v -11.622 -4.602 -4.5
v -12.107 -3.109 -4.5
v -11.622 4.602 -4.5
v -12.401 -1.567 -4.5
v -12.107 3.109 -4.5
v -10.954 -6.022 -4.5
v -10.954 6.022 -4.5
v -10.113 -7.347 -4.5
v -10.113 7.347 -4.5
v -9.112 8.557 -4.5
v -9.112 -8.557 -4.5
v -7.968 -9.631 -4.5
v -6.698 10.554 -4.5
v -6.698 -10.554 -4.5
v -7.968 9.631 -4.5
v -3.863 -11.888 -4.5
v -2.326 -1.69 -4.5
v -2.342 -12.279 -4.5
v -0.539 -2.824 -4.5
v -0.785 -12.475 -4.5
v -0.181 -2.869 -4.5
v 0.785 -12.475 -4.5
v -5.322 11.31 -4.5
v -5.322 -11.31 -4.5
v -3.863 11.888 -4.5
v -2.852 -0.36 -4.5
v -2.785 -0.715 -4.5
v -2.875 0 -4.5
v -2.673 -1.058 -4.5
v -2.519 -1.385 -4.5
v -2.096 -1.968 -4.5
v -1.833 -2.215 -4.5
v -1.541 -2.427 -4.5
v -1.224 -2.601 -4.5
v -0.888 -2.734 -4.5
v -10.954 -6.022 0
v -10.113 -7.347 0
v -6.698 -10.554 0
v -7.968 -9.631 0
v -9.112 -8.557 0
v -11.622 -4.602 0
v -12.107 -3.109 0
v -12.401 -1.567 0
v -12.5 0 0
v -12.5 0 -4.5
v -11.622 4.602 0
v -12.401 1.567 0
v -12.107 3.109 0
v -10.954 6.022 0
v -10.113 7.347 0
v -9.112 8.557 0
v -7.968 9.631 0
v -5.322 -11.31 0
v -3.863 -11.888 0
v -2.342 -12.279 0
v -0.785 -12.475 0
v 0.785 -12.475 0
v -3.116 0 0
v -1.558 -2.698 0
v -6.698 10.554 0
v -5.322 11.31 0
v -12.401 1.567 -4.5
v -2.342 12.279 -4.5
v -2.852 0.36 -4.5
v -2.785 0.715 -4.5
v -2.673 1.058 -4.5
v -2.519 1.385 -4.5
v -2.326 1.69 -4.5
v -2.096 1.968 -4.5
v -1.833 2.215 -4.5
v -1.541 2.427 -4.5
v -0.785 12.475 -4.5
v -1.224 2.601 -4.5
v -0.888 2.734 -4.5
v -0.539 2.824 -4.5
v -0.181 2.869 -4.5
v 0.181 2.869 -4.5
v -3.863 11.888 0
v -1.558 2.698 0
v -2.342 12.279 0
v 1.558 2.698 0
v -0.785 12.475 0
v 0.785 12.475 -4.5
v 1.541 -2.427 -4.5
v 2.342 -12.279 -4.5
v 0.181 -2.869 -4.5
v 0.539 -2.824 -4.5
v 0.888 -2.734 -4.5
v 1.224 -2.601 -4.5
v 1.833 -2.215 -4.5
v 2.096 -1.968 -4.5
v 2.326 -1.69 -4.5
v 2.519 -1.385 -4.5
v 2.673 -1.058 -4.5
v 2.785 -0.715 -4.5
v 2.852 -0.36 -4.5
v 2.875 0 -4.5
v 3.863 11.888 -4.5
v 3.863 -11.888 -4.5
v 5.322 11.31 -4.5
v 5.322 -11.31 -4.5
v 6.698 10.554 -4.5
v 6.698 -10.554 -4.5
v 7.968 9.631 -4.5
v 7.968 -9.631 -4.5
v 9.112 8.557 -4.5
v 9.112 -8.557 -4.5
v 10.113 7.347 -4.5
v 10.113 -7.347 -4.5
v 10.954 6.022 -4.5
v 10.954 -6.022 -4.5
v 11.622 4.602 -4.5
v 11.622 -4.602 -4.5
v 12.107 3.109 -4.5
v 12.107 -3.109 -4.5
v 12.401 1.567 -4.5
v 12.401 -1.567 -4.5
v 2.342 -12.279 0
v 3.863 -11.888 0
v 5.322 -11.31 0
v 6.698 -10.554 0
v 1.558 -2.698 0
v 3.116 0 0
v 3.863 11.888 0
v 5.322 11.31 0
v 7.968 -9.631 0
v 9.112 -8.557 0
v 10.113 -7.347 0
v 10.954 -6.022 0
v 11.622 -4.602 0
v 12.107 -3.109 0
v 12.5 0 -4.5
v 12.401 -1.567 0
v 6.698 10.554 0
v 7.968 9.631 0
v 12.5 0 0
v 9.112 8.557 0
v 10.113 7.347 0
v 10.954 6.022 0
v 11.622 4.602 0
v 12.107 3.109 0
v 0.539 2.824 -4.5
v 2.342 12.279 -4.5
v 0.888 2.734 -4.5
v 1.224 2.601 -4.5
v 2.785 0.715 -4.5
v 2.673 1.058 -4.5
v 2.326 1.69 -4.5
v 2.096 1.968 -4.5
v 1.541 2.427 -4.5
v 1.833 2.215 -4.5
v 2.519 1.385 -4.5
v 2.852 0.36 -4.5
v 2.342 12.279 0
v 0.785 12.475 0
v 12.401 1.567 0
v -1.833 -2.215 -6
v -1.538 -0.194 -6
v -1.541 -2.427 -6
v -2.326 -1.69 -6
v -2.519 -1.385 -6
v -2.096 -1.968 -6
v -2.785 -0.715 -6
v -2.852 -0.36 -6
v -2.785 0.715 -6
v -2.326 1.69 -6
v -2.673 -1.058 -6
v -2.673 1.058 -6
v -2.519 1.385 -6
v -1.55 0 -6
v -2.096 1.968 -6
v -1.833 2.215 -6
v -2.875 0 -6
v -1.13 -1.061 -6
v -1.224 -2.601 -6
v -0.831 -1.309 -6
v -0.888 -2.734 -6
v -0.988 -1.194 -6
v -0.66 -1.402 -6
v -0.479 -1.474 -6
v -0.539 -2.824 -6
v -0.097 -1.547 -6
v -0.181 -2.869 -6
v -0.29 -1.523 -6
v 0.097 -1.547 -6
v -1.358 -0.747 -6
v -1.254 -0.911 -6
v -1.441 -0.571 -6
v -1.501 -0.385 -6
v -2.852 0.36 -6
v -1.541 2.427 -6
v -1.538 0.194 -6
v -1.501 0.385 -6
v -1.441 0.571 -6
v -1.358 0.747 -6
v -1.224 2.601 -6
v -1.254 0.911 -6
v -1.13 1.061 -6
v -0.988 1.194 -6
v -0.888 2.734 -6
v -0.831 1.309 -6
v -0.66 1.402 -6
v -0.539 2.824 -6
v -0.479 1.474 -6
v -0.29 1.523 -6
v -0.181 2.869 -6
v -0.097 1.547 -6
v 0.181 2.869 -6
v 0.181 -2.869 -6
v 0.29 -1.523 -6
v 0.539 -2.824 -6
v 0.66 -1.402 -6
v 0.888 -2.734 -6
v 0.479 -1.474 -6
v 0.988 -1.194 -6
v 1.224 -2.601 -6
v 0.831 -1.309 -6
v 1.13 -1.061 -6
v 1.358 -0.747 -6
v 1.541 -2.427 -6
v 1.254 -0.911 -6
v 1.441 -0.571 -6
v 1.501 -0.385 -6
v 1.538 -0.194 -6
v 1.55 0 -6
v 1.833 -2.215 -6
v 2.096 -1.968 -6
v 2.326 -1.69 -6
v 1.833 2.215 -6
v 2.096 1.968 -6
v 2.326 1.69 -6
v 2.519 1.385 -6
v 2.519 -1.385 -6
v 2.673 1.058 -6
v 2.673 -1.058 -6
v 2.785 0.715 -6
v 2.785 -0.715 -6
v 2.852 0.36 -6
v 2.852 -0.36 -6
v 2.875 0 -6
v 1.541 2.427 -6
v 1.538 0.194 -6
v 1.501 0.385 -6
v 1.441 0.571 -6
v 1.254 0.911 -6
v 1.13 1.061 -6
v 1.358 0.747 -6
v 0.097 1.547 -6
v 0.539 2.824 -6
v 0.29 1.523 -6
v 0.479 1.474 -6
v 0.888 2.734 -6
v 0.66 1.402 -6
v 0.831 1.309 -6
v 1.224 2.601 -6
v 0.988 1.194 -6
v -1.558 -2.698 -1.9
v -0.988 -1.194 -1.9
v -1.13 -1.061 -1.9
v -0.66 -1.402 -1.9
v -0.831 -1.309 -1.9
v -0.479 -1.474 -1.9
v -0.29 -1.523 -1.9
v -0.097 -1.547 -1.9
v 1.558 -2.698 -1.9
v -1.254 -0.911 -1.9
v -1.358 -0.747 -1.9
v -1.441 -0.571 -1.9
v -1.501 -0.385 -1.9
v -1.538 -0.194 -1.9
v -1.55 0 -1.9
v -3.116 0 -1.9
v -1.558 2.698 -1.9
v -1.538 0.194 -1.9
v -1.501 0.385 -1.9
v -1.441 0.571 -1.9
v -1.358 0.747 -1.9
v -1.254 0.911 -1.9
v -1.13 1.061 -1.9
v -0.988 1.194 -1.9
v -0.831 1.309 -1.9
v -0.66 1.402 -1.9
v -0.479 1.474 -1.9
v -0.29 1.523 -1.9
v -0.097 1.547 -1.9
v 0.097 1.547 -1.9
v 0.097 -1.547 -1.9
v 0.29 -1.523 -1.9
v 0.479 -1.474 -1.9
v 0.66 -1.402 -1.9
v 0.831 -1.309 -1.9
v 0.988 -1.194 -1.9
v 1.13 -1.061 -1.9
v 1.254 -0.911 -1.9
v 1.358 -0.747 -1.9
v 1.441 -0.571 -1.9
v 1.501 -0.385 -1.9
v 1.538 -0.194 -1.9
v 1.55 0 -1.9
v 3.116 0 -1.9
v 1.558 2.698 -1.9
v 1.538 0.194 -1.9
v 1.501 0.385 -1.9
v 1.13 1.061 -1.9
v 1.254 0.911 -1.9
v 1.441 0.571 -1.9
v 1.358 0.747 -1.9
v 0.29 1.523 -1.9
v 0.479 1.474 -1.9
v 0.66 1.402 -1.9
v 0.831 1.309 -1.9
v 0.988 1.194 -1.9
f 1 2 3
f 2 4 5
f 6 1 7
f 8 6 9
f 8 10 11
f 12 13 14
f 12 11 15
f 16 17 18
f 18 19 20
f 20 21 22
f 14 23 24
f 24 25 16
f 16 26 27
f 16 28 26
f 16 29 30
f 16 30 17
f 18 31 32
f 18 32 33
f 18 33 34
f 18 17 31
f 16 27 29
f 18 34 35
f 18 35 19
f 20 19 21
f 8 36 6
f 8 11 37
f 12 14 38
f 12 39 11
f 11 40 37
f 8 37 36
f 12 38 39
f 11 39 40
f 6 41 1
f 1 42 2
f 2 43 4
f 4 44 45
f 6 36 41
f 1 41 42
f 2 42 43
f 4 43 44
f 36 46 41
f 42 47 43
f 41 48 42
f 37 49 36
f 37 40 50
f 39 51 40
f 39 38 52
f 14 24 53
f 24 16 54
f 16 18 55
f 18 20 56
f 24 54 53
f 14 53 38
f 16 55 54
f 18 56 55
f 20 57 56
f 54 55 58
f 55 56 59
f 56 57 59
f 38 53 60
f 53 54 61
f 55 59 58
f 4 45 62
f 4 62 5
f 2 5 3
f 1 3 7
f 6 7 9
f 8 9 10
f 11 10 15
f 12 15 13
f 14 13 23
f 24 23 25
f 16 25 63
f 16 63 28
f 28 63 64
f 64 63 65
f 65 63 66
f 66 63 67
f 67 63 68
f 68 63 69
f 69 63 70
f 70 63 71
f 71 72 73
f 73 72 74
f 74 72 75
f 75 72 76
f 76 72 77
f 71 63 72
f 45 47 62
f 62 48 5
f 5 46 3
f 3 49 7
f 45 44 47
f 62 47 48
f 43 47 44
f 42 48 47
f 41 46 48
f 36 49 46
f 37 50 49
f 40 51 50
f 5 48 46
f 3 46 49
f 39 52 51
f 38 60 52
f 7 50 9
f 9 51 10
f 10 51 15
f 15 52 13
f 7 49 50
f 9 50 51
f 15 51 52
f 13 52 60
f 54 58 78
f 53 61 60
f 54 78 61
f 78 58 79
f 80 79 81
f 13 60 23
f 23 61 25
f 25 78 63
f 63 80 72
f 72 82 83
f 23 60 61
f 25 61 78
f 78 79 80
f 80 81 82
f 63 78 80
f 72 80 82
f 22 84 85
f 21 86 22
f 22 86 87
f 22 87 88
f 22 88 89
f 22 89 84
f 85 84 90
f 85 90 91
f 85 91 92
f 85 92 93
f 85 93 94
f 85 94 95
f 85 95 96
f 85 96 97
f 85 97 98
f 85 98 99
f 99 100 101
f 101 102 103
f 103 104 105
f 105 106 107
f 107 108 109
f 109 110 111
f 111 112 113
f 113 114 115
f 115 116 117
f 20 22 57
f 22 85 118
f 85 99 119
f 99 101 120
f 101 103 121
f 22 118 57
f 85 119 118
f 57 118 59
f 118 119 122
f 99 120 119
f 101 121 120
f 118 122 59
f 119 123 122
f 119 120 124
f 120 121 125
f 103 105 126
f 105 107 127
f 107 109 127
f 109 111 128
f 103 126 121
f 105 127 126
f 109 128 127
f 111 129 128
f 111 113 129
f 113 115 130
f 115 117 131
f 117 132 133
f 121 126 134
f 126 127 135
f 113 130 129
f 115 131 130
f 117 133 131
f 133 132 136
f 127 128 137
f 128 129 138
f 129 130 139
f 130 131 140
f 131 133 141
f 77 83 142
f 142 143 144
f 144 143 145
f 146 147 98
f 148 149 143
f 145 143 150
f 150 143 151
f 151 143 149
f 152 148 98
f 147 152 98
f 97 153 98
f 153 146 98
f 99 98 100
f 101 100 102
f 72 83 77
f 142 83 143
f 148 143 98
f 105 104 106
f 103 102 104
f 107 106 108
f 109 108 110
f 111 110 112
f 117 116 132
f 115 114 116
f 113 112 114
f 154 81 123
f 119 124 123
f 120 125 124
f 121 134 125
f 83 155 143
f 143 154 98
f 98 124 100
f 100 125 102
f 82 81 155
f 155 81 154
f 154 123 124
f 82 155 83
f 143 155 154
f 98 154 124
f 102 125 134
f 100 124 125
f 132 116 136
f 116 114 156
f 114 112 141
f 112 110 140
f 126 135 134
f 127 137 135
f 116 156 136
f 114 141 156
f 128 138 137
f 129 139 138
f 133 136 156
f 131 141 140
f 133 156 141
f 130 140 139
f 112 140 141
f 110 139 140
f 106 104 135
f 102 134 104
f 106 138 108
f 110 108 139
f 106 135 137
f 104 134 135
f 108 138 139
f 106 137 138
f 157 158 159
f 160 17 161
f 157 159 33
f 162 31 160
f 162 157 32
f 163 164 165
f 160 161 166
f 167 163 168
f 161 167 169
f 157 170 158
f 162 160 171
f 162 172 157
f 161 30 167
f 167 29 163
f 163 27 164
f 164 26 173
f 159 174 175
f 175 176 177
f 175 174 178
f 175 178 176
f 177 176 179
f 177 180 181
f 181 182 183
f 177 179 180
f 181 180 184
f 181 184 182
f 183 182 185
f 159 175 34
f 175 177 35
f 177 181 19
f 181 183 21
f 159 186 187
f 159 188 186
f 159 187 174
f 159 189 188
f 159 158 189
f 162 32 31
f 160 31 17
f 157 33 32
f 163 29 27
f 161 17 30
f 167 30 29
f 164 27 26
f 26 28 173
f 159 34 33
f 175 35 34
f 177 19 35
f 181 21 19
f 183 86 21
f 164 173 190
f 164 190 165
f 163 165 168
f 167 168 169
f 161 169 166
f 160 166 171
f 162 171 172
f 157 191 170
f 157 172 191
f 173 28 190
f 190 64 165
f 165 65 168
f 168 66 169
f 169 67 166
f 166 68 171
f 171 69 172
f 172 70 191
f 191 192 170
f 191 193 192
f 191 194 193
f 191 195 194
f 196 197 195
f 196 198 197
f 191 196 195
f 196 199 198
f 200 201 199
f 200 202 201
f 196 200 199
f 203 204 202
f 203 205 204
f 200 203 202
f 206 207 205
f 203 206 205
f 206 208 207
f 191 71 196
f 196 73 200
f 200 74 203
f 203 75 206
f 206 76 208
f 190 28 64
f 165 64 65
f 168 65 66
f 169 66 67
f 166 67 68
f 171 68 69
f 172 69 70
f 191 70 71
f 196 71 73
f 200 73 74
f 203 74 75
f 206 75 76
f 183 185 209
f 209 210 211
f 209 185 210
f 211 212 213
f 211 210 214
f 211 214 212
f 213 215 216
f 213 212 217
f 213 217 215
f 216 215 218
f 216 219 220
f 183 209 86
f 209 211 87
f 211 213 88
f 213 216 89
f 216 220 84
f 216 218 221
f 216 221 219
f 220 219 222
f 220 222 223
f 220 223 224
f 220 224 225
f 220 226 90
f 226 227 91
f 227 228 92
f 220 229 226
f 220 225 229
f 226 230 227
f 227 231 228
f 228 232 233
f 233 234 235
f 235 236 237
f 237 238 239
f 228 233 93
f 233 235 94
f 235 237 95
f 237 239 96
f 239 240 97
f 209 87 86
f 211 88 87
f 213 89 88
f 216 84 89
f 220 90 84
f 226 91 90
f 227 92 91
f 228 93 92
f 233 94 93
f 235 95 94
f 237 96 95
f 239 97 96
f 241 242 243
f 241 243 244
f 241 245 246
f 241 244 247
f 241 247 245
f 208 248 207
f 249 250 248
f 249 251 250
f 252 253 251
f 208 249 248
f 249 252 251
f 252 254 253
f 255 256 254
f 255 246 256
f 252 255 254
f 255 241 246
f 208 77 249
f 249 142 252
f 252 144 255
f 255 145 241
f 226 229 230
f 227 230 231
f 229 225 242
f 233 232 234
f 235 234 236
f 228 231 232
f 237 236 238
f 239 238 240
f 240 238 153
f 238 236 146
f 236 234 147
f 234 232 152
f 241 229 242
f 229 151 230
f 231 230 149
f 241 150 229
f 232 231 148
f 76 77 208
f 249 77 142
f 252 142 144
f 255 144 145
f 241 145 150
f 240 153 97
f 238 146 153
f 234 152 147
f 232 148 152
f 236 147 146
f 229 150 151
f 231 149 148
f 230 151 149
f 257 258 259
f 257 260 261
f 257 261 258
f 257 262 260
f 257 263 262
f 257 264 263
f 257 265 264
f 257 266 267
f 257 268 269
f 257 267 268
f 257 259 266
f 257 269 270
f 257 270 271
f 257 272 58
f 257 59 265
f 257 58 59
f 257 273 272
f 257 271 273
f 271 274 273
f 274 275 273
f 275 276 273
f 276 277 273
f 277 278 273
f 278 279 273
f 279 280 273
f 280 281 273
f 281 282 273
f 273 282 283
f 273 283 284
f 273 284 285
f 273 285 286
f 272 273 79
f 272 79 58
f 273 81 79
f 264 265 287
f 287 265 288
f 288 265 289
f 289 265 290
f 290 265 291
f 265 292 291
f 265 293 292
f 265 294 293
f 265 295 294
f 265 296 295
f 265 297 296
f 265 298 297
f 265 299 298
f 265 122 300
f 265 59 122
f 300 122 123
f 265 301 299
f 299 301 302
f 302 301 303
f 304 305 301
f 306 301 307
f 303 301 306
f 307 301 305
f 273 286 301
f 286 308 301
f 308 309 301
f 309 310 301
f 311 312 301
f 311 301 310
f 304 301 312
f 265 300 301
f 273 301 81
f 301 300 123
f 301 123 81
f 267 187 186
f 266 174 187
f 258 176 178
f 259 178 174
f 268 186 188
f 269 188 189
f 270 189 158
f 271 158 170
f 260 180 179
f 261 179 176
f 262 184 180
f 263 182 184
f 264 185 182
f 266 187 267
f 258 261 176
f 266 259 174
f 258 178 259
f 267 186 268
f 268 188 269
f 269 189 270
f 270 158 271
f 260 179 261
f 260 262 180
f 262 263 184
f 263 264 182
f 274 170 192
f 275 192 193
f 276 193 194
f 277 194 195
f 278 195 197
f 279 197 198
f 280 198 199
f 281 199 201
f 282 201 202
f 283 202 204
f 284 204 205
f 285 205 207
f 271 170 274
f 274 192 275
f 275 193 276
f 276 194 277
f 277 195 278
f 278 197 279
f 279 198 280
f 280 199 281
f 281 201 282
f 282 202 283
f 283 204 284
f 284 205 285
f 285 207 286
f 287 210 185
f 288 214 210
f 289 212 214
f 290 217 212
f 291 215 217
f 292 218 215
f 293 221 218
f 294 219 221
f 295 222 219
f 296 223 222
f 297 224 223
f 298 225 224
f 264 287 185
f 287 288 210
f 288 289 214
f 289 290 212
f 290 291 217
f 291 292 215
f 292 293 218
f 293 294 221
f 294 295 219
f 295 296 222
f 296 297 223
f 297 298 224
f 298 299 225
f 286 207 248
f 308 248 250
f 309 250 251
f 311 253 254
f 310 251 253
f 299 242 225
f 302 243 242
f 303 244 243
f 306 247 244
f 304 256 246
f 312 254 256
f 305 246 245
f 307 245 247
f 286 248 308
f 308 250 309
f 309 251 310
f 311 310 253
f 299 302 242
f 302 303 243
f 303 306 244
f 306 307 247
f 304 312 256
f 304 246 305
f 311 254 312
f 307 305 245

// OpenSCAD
$fn = 50;

difference() {
	union() {
		translate(v = [0, 0, -4.5]) {
			cylinder(h = 4.5, r = 12.5);
		}
		#translate(v = [0, 0, -6.0]) {
			cylinder(h = 6, r = 2.875);
		}
	}
	union() {
		translate(v = [0, 0, 0]) {
			rotate(a = [0, 0, 0]) {
				difference() {
					union() {
						translate(v = [0, 0, -1.9]) {
							linear_extrude(height = 1.9) {
								polygon(points = [[3.1158, 0.0], [1.5579000000000005, 2.698361953111554], [-1.5578999999999994, 2.6983619531115544], [-3.1158, 3.815754496783323e-16], [-1.5579000000000014, -2.6983619531115535], [1.557899999999998, -2.6983619531115552]]);
							}
						}
					}
					union();
				}
			}
		}
		#translate(v = [0, 0, -100.0]) {
			cylinder(h = 200, r = 1.55);
		}
	}
}
